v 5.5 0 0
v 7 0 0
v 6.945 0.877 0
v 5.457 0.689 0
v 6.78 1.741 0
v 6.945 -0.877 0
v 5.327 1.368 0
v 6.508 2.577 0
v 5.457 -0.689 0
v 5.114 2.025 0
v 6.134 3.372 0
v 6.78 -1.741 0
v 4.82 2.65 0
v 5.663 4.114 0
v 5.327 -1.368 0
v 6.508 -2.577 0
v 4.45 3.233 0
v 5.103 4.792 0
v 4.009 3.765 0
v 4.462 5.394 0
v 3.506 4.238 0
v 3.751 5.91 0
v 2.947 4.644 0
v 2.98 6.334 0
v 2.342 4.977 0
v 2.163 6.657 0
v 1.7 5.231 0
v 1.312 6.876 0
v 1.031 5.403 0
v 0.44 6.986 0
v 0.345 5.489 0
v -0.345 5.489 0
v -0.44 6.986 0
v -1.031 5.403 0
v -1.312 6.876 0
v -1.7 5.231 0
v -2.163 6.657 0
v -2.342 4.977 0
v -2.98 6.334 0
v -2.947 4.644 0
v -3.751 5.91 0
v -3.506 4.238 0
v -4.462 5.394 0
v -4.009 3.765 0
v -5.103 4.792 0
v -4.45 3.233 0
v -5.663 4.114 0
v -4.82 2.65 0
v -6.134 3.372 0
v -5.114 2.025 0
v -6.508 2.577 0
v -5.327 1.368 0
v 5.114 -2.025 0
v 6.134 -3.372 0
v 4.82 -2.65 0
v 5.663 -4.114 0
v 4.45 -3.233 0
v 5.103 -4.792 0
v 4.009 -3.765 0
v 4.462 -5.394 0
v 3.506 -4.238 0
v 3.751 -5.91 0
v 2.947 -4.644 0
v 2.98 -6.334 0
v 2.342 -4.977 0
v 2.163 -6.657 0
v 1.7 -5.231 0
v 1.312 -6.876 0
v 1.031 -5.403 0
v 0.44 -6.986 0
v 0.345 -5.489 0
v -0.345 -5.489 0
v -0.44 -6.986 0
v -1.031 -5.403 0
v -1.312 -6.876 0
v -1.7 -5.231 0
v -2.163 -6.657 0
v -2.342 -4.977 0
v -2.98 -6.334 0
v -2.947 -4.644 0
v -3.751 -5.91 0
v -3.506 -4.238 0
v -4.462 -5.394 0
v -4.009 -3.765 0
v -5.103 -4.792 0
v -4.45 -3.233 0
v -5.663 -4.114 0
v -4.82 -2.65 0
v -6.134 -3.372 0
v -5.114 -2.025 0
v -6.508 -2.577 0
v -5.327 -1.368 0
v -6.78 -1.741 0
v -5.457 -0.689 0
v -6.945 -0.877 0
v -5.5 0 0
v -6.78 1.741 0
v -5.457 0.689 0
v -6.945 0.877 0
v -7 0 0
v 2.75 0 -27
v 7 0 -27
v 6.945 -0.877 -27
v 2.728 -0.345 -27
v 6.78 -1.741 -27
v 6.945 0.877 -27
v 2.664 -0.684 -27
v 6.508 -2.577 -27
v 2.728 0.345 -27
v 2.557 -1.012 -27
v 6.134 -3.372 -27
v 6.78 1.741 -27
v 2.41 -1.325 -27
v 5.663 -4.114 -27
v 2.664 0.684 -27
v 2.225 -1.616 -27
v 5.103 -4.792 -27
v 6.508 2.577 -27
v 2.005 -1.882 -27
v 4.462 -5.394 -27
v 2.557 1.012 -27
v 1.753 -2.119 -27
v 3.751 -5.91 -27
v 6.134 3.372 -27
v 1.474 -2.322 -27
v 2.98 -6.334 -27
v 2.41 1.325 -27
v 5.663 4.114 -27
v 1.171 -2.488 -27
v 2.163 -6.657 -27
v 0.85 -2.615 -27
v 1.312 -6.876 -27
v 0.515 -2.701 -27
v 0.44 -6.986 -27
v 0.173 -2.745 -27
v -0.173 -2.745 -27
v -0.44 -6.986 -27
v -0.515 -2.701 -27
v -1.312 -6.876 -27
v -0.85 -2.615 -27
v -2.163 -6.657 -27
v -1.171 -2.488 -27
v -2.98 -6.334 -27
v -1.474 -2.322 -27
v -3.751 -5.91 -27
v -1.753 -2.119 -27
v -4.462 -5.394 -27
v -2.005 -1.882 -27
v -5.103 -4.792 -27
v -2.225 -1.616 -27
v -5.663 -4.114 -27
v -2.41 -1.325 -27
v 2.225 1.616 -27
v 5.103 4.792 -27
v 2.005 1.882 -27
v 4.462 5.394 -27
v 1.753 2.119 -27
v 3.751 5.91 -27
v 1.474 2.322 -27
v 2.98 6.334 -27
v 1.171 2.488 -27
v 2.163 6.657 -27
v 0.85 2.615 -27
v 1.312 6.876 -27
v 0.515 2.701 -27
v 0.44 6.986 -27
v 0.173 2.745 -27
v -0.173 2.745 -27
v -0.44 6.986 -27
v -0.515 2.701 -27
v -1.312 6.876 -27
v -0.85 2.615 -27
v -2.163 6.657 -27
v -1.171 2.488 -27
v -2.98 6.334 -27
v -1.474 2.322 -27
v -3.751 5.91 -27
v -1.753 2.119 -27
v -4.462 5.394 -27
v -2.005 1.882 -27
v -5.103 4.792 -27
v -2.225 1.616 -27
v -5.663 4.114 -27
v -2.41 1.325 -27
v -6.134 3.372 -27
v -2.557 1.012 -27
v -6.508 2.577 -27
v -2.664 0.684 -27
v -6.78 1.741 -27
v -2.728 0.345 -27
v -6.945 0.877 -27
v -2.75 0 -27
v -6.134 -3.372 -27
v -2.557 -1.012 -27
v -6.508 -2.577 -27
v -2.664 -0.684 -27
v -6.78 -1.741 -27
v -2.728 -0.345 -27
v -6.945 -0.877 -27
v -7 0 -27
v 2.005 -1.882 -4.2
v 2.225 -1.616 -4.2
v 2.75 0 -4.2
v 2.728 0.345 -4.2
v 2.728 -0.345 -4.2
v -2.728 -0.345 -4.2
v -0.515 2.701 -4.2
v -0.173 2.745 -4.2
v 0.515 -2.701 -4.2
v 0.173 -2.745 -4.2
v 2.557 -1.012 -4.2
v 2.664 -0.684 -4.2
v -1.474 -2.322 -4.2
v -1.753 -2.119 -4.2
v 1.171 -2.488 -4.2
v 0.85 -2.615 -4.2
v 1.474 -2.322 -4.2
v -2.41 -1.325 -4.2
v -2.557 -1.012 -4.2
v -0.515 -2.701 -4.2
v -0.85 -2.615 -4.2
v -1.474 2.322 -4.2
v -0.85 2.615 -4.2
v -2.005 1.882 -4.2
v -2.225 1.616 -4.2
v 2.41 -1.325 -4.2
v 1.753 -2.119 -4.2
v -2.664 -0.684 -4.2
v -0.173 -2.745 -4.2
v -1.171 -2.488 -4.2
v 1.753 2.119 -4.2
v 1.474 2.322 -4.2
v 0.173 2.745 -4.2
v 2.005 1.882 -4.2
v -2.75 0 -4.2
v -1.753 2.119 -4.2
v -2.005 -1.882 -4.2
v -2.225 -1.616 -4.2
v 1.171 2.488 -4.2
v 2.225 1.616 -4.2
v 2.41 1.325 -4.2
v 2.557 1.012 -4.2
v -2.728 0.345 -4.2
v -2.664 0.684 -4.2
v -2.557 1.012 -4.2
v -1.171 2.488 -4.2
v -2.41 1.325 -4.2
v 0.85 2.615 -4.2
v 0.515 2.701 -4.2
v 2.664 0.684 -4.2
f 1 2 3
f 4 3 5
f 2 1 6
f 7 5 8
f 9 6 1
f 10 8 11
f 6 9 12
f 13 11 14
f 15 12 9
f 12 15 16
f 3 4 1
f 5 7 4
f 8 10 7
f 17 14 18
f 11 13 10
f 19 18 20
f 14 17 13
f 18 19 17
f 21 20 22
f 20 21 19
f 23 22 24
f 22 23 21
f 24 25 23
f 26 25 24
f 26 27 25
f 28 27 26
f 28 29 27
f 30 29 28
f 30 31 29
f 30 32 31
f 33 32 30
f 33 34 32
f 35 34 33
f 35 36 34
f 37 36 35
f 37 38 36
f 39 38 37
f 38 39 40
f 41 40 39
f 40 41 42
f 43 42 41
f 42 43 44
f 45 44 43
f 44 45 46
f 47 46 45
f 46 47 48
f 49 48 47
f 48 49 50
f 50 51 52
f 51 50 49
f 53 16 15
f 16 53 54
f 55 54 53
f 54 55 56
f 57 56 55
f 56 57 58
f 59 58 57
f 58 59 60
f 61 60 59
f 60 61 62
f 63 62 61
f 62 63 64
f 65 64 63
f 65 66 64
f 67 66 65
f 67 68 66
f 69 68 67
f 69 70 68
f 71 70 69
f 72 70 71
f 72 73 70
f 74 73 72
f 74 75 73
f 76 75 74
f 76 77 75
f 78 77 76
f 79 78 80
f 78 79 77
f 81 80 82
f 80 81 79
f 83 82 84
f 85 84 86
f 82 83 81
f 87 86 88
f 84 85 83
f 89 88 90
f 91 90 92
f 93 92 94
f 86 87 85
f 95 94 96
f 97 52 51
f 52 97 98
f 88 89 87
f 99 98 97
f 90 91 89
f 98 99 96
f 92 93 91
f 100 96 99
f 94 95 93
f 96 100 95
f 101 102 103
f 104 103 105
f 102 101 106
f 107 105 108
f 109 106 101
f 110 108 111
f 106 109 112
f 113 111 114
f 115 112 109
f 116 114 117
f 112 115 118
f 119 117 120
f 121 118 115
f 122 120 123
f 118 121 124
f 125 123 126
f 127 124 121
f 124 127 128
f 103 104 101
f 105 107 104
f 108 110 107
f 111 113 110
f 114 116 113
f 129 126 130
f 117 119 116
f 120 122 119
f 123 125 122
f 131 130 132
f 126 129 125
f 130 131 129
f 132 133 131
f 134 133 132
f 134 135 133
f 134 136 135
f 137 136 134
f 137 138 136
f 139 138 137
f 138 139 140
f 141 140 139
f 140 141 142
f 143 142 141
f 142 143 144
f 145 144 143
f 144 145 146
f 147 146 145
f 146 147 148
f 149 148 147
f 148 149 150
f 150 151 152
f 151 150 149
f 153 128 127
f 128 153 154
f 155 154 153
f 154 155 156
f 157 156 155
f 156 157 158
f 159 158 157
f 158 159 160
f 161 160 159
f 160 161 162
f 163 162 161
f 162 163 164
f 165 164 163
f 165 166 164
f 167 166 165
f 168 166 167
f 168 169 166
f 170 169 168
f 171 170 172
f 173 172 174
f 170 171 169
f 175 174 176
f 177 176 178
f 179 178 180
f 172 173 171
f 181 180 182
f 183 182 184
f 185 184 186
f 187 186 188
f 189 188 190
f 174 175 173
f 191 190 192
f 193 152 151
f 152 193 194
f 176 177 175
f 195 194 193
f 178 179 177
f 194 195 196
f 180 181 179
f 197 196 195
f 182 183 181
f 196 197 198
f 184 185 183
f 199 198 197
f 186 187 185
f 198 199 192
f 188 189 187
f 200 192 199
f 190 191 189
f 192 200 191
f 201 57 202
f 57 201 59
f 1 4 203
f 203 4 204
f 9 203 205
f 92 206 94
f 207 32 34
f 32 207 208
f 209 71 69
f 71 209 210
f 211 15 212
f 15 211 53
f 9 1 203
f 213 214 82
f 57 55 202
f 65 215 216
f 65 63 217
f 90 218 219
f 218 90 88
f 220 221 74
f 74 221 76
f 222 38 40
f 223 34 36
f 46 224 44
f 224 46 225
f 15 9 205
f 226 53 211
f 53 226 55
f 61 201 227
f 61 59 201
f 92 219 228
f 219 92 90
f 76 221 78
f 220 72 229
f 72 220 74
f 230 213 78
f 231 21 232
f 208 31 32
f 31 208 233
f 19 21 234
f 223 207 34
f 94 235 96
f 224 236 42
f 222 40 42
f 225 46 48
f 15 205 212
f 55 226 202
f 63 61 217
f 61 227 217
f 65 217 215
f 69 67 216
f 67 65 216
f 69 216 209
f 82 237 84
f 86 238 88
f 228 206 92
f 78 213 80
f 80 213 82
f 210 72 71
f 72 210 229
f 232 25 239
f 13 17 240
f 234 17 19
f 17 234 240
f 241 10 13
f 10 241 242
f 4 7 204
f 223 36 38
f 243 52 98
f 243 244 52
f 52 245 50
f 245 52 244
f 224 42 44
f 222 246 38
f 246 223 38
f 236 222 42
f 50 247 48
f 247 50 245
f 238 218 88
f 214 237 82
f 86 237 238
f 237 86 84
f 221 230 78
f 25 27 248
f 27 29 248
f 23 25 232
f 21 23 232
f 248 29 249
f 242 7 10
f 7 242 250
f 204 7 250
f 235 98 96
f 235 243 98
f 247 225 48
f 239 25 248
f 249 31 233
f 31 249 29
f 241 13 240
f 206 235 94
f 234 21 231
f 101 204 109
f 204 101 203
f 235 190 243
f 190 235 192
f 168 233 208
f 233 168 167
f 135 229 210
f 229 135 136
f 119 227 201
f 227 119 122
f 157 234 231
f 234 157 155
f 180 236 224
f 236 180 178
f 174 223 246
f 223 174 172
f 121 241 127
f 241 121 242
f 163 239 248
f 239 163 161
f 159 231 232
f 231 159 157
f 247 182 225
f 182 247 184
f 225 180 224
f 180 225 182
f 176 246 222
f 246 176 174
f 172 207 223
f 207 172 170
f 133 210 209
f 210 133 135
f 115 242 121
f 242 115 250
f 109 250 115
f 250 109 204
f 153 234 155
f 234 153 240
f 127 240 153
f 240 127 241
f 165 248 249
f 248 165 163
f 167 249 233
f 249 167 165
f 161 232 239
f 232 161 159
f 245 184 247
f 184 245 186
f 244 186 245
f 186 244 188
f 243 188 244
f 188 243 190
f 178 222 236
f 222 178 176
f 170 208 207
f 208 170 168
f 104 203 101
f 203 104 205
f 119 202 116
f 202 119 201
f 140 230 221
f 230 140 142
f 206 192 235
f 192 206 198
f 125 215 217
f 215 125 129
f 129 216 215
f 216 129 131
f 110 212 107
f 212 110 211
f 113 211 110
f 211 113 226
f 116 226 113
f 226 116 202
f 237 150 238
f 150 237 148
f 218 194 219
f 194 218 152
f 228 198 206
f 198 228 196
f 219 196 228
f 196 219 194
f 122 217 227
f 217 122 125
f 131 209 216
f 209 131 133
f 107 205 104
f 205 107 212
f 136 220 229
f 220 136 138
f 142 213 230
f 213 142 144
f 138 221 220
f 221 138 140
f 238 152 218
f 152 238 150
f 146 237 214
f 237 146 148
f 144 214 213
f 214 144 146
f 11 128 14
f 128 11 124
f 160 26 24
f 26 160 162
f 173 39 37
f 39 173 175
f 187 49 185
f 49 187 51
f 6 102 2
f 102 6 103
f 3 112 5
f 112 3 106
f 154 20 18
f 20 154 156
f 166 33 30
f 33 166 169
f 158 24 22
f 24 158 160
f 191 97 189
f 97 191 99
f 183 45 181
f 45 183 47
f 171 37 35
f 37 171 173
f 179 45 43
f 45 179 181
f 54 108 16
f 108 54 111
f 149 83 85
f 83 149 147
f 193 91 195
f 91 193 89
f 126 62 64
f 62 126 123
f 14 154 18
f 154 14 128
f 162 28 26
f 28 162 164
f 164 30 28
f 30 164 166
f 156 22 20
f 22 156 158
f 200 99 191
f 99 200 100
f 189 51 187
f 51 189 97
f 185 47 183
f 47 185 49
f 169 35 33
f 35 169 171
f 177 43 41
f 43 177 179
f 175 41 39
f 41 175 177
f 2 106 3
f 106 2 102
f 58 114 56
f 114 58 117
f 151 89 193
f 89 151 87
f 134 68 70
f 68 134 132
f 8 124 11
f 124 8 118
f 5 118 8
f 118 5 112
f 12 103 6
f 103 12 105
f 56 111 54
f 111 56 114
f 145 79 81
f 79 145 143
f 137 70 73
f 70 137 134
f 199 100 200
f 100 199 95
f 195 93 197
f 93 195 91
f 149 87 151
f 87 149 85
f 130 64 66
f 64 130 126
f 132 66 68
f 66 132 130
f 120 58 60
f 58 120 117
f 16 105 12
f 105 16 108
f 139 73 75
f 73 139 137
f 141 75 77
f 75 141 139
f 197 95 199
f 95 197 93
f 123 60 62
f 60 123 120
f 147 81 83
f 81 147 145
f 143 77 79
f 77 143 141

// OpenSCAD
$fn = 50;


difference() {
	union() {
		translate(v = [0, 0, -27.0000000000]) {
			cylinder(h = 27, r = 7.0000000000);
		}
		cylinder(h = 0, r = 13.0000000000);
	}
	union() {
		translate(v = [0, 0, 0]) {
			rotate(a = [0, 0, 0]) {
				difference() {
					union() {
						#translate(v = [0, 0, -27.0000000000]) {
							cylinder(h = 27, r = 2.2500000000);
						}
						#translate(v = [0, 0, -4.2000000000]) {
							cylinder(h = 4.2000000000, r1 = 2.7500000000, r2 = 5.5000000000);
						}
						#translate(v = [0, 0, -27.0000000000]) {
							cylinder(h = 27, r = 2.7500000000);
						}
						#translate(v = [0, 0, -27.0000000000]) {
							cylinder(h = 27, r = 2.2500000000);
						}
					}
					union();
				}
			}
		}
	}
}
